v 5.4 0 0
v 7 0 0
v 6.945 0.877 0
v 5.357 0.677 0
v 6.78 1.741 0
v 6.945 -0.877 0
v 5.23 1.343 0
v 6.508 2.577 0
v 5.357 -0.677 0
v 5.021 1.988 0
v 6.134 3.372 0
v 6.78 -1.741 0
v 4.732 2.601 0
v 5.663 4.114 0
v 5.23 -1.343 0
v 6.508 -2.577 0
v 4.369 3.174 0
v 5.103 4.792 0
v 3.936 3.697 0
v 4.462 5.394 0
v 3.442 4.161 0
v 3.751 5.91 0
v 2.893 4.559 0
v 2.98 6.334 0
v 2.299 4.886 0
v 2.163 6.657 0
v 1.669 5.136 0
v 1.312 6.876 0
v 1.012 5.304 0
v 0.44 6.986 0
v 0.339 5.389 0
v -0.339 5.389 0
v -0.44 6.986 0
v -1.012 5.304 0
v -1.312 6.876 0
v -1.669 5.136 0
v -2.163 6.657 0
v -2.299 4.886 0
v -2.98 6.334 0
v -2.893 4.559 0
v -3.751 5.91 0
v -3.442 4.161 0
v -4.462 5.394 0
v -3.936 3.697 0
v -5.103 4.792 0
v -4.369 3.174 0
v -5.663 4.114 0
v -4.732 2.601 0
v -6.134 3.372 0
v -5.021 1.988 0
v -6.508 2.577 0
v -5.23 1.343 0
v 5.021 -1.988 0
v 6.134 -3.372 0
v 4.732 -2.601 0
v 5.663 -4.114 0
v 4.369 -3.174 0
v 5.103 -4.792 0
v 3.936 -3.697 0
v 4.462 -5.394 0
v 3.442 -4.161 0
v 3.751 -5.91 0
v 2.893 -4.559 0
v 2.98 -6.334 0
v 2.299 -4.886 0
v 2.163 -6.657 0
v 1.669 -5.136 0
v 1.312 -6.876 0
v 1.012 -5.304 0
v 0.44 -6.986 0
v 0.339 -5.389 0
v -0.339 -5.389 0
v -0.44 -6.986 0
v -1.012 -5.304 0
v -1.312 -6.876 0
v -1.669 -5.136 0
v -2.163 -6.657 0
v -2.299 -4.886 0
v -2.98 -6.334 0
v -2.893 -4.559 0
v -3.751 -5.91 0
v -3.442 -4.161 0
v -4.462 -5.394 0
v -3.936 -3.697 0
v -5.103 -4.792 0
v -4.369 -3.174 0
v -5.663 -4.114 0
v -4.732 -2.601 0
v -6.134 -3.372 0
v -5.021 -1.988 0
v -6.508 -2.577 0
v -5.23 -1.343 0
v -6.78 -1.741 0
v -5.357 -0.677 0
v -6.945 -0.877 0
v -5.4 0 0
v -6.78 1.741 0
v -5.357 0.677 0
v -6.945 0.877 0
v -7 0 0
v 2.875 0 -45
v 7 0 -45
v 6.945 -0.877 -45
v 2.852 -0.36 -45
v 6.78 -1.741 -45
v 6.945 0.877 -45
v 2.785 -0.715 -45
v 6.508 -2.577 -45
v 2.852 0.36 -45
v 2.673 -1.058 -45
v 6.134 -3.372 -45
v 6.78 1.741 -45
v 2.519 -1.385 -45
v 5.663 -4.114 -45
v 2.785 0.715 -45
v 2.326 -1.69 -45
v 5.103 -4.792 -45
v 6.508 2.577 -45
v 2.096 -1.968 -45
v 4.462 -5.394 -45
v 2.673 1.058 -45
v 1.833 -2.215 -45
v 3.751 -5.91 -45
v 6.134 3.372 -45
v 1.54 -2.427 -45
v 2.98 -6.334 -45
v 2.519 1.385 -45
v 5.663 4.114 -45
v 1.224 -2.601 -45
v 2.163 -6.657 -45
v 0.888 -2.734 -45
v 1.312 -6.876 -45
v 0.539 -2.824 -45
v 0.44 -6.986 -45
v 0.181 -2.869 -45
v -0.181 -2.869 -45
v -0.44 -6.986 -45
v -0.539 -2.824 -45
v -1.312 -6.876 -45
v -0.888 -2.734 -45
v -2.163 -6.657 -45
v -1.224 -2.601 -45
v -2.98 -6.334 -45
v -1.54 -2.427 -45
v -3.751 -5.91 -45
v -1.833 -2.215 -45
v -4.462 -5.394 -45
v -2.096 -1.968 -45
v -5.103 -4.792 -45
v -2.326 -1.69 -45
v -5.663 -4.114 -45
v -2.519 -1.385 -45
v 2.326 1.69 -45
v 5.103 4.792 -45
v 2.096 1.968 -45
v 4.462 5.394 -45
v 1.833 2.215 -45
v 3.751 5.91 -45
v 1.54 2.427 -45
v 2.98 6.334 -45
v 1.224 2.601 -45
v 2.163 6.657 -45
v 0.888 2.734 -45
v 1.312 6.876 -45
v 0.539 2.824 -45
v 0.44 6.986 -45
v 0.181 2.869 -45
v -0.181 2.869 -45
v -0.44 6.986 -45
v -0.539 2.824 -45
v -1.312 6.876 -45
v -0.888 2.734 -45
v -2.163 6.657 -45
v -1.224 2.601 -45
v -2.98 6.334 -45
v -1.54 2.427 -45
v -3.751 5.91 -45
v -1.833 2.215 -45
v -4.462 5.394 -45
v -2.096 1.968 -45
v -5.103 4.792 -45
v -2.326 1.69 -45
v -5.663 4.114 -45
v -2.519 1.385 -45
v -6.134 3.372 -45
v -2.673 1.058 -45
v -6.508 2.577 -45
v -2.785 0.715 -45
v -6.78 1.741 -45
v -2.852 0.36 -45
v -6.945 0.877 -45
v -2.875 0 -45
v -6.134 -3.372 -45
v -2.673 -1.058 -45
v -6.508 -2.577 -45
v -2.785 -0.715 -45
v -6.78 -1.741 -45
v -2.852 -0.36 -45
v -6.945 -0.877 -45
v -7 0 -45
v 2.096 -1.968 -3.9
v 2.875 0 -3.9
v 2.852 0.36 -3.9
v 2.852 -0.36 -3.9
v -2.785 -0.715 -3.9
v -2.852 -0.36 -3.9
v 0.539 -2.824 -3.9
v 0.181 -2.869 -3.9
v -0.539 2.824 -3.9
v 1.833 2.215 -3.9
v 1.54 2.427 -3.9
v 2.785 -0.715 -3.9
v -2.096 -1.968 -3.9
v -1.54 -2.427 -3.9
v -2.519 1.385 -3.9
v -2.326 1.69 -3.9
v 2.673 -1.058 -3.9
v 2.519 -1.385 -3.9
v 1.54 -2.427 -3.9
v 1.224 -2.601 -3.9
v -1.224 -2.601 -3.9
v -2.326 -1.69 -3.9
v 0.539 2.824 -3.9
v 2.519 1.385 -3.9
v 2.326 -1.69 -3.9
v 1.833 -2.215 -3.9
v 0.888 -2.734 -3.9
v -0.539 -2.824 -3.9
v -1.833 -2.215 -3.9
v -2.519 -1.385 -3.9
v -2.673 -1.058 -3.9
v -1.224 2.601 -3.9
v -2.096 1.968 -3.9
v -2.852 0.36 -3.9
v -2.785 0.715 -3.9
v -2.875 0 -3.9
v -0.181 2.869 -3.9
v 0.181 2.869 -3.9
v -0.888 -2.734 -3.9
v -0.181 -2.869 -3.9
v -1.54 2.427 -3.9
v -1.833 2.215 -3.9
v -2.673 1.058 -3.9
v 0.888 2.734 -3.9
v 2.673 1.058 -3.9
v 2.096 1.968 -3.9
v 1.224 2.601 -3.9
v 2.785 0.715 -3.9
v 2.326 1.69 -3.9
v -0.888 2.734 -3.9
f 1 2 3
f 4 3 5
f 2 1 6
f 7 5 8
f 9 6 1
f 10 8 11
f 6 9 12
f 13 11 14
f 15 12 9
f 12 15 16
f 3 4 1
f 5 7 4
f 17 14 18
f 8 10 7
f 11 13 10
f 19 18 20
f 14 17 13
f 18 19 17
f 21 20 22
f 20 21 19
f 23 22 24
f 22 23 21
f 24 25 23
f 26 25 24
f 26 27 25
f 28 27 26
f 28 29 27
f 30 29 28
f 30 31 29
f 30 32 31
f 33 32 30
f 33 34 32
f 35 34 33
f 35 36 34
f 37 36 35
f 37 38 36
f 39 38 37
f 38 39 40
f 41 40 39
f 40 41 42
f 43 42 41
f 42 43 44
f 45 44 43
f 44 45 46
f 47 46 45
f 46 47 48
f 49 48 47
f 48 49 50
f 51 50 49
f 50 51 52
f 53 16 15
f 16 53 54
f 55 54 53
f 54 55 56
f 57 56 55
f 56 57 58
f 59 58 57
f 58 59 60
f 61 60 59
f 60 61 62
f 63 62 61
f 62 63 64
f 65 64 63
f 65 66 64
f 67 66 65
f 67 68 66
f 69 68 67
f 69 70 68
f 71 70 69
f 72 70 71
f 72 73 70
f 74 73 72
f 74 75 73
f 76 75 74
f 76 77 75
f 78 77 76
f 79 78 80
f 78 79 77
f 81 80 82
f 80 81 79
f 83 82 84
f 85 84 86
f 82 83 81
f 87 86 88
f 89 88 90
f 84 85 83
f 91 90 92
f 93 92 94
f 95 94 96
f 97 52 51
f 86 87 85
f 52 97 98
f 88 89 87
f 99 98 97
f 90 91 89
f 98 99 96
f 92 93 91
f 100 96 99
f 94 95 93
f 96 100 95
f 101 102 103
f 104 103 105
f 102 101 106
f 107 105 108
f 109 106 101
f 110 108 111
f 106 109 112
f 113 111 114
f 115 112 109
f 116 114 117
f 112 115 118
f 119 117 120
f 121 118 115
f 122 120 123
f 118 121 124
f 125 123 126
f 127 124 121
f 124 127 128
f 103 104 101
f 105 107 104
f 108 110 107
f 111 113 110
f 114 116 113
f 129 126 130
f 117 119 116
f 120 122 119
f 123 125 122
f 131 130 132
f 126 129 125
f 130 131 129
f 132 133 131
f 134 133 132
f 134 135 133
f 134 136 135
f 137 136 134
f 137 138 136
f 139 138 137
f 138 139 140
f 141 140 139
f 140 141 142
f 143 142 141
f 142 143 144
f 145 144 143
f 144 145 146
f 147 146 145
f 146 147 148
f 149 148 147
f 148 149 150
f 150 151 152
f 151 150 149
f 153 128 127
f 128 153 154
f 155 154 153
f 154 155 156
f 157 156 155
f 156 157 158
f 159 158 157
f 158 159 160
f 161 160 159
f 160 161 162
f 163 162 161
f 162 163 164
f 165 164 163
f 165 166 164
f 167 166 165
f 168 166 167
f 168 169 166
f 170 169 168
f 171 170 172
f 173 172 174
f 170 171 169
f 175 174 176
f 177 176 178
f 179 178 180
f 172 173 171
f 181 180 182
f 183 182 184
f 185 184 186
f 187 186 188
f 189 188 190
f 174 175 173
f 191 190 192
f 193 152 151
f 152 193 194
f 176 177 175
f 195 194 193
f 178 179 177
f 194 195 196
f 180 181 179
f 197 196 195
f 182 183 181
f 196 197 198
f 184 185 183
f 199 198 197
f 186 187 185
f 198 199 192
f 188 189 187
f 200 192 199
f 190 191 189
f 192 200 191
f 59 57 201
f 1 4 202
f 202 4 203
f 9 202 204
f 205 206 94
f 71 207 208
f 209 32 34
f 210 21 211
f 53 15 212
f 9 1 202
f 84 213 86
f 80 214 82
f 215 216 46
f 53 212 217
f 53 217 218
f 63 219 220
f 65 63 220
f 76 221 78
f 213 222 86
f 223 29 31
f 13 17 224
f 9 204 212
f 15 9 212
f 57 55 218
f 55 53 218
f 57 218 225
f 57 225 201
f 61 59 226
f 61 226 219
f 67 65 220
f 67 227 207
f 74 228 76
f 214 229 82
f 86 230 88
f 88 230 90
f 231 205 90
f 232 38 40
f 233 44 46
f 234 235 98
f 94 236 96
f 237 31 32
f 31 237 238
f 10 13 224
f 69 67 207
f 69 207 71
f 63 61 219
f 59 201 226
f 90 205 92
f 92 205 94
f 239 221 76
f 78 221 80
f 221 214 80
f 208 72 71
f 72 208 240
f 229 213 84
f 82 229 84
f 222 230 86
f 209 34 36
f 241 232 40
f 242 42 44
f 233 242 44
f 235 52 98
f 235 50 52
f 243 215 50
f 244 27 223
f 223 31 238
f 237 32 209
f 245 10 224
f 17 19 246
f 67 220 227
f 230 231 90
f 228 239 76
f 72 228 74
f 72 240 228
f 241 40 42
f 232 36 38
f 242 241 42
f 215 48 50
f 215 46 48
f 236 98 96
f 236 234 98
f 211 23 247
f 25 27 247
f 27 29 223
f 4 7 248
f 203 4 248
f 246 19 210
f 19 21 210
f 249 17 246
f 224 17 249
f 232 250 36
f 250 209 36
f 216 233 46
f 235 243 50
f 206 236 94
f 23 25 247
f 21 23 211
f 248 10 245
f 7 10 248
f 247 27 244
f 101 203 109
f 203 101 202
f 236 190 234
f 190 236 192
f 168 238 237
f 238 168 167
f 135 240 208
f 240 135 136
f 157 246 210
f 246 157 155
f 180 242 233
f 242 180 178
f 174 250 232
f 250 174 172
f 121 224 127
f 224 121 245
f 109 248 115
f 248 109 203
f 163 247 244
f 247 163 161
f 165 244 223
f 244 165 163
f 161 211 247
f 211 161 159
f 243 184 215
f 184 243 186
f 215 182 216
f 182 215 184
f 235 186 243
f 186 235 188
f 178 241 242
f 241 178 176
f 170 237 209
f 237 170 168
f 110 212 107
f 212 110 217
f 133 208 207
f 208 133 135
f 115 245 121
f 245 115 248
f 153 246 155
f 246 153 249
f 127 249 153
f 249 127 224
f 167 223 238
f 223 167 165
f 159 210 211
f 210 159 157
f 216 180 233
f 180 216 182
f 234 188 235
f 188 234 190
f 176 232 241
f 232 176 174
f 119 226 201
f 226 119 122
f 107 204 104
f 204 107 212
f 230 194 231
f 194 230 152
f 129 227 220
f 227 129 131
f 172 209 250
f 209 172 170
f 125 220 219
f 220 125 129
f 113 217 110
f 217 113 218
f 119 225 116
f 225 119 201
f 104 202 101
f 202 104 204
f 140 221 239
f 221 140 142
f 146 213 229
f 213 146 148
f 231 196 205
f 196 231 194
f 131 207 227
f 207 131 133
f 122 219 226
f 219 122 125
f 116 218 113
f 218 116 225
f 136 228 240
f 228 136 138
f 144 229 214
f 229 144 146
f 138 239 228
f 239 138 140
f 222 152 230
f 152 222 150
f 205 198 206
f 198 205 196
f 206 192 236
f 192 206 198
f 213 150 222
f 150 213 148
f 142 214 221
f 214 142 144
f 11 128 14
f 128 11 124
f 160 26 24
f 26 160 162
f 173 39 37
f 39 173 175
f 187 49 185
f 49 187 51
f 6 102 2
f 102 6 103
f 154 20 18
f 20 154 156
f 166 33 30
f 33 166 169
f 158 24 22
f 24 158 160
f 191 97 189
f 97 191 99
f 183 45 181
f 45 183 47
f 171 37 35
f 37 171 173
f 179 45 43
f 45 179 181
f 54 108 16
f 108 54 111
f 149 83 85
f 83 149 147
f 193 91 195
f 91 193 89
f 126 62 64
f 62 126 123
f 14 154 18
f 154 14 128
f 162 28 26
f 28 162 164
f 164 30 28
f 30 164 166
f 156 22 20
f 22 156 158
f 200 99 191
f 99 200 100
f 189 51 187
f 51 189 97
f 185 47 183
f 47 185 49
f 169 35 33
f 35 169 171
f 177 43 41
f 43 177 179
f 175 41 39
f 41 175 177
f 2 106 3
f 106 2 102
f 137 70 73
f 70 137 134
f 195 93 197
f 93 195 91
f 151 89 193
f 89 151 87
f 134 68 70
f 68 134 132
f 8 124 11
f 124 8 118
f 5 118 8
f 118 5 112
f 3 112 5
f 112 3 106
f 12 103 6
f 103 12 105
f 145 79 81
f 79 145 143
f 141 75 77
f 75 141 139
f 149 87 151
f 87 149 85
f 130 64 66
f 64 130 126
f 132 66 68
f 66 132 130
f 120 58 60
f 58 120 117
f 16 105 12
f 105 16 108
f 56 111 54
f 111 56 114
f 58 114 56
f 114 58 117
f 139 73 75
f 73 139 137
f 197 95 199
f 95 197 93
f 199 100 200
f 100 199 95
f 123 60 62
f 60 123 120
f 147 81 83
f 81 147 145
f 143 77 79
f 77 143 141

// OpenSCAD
$fn = 50;


difference() {
	union() {
		translate(v = [0, 0, -45.0000000000]) {
			cylinder(h = 45, r = 7.0000000000);
		}
	}
	union() {
		translate(v = [0, 0, 0]) {
			rotate(a = [0, 0, 0]) {
				difference() {
					union() {
						#translate(v = [0, 0, -45.0000000000]) {
							cylinder(h = 45, r = 2.6000000000);
						}
						#translate(v = [0, 0, -3.9000000000]) {
							cylinder(h = 3.9000000000, r1 = 2.8750000000, r2 = 5.4000000000);
						}
						#translate(v = [0, 0, -45.0000000000]) {
							cylinder(h = 45, r = 2.8750000000);
						}
						#translate(v = [0, 0, -45.0000000000]) {
							cylinder(h = 45, r = 2.6000000000);
						}
					}
					union();
				}
			}
		}
	}
}
